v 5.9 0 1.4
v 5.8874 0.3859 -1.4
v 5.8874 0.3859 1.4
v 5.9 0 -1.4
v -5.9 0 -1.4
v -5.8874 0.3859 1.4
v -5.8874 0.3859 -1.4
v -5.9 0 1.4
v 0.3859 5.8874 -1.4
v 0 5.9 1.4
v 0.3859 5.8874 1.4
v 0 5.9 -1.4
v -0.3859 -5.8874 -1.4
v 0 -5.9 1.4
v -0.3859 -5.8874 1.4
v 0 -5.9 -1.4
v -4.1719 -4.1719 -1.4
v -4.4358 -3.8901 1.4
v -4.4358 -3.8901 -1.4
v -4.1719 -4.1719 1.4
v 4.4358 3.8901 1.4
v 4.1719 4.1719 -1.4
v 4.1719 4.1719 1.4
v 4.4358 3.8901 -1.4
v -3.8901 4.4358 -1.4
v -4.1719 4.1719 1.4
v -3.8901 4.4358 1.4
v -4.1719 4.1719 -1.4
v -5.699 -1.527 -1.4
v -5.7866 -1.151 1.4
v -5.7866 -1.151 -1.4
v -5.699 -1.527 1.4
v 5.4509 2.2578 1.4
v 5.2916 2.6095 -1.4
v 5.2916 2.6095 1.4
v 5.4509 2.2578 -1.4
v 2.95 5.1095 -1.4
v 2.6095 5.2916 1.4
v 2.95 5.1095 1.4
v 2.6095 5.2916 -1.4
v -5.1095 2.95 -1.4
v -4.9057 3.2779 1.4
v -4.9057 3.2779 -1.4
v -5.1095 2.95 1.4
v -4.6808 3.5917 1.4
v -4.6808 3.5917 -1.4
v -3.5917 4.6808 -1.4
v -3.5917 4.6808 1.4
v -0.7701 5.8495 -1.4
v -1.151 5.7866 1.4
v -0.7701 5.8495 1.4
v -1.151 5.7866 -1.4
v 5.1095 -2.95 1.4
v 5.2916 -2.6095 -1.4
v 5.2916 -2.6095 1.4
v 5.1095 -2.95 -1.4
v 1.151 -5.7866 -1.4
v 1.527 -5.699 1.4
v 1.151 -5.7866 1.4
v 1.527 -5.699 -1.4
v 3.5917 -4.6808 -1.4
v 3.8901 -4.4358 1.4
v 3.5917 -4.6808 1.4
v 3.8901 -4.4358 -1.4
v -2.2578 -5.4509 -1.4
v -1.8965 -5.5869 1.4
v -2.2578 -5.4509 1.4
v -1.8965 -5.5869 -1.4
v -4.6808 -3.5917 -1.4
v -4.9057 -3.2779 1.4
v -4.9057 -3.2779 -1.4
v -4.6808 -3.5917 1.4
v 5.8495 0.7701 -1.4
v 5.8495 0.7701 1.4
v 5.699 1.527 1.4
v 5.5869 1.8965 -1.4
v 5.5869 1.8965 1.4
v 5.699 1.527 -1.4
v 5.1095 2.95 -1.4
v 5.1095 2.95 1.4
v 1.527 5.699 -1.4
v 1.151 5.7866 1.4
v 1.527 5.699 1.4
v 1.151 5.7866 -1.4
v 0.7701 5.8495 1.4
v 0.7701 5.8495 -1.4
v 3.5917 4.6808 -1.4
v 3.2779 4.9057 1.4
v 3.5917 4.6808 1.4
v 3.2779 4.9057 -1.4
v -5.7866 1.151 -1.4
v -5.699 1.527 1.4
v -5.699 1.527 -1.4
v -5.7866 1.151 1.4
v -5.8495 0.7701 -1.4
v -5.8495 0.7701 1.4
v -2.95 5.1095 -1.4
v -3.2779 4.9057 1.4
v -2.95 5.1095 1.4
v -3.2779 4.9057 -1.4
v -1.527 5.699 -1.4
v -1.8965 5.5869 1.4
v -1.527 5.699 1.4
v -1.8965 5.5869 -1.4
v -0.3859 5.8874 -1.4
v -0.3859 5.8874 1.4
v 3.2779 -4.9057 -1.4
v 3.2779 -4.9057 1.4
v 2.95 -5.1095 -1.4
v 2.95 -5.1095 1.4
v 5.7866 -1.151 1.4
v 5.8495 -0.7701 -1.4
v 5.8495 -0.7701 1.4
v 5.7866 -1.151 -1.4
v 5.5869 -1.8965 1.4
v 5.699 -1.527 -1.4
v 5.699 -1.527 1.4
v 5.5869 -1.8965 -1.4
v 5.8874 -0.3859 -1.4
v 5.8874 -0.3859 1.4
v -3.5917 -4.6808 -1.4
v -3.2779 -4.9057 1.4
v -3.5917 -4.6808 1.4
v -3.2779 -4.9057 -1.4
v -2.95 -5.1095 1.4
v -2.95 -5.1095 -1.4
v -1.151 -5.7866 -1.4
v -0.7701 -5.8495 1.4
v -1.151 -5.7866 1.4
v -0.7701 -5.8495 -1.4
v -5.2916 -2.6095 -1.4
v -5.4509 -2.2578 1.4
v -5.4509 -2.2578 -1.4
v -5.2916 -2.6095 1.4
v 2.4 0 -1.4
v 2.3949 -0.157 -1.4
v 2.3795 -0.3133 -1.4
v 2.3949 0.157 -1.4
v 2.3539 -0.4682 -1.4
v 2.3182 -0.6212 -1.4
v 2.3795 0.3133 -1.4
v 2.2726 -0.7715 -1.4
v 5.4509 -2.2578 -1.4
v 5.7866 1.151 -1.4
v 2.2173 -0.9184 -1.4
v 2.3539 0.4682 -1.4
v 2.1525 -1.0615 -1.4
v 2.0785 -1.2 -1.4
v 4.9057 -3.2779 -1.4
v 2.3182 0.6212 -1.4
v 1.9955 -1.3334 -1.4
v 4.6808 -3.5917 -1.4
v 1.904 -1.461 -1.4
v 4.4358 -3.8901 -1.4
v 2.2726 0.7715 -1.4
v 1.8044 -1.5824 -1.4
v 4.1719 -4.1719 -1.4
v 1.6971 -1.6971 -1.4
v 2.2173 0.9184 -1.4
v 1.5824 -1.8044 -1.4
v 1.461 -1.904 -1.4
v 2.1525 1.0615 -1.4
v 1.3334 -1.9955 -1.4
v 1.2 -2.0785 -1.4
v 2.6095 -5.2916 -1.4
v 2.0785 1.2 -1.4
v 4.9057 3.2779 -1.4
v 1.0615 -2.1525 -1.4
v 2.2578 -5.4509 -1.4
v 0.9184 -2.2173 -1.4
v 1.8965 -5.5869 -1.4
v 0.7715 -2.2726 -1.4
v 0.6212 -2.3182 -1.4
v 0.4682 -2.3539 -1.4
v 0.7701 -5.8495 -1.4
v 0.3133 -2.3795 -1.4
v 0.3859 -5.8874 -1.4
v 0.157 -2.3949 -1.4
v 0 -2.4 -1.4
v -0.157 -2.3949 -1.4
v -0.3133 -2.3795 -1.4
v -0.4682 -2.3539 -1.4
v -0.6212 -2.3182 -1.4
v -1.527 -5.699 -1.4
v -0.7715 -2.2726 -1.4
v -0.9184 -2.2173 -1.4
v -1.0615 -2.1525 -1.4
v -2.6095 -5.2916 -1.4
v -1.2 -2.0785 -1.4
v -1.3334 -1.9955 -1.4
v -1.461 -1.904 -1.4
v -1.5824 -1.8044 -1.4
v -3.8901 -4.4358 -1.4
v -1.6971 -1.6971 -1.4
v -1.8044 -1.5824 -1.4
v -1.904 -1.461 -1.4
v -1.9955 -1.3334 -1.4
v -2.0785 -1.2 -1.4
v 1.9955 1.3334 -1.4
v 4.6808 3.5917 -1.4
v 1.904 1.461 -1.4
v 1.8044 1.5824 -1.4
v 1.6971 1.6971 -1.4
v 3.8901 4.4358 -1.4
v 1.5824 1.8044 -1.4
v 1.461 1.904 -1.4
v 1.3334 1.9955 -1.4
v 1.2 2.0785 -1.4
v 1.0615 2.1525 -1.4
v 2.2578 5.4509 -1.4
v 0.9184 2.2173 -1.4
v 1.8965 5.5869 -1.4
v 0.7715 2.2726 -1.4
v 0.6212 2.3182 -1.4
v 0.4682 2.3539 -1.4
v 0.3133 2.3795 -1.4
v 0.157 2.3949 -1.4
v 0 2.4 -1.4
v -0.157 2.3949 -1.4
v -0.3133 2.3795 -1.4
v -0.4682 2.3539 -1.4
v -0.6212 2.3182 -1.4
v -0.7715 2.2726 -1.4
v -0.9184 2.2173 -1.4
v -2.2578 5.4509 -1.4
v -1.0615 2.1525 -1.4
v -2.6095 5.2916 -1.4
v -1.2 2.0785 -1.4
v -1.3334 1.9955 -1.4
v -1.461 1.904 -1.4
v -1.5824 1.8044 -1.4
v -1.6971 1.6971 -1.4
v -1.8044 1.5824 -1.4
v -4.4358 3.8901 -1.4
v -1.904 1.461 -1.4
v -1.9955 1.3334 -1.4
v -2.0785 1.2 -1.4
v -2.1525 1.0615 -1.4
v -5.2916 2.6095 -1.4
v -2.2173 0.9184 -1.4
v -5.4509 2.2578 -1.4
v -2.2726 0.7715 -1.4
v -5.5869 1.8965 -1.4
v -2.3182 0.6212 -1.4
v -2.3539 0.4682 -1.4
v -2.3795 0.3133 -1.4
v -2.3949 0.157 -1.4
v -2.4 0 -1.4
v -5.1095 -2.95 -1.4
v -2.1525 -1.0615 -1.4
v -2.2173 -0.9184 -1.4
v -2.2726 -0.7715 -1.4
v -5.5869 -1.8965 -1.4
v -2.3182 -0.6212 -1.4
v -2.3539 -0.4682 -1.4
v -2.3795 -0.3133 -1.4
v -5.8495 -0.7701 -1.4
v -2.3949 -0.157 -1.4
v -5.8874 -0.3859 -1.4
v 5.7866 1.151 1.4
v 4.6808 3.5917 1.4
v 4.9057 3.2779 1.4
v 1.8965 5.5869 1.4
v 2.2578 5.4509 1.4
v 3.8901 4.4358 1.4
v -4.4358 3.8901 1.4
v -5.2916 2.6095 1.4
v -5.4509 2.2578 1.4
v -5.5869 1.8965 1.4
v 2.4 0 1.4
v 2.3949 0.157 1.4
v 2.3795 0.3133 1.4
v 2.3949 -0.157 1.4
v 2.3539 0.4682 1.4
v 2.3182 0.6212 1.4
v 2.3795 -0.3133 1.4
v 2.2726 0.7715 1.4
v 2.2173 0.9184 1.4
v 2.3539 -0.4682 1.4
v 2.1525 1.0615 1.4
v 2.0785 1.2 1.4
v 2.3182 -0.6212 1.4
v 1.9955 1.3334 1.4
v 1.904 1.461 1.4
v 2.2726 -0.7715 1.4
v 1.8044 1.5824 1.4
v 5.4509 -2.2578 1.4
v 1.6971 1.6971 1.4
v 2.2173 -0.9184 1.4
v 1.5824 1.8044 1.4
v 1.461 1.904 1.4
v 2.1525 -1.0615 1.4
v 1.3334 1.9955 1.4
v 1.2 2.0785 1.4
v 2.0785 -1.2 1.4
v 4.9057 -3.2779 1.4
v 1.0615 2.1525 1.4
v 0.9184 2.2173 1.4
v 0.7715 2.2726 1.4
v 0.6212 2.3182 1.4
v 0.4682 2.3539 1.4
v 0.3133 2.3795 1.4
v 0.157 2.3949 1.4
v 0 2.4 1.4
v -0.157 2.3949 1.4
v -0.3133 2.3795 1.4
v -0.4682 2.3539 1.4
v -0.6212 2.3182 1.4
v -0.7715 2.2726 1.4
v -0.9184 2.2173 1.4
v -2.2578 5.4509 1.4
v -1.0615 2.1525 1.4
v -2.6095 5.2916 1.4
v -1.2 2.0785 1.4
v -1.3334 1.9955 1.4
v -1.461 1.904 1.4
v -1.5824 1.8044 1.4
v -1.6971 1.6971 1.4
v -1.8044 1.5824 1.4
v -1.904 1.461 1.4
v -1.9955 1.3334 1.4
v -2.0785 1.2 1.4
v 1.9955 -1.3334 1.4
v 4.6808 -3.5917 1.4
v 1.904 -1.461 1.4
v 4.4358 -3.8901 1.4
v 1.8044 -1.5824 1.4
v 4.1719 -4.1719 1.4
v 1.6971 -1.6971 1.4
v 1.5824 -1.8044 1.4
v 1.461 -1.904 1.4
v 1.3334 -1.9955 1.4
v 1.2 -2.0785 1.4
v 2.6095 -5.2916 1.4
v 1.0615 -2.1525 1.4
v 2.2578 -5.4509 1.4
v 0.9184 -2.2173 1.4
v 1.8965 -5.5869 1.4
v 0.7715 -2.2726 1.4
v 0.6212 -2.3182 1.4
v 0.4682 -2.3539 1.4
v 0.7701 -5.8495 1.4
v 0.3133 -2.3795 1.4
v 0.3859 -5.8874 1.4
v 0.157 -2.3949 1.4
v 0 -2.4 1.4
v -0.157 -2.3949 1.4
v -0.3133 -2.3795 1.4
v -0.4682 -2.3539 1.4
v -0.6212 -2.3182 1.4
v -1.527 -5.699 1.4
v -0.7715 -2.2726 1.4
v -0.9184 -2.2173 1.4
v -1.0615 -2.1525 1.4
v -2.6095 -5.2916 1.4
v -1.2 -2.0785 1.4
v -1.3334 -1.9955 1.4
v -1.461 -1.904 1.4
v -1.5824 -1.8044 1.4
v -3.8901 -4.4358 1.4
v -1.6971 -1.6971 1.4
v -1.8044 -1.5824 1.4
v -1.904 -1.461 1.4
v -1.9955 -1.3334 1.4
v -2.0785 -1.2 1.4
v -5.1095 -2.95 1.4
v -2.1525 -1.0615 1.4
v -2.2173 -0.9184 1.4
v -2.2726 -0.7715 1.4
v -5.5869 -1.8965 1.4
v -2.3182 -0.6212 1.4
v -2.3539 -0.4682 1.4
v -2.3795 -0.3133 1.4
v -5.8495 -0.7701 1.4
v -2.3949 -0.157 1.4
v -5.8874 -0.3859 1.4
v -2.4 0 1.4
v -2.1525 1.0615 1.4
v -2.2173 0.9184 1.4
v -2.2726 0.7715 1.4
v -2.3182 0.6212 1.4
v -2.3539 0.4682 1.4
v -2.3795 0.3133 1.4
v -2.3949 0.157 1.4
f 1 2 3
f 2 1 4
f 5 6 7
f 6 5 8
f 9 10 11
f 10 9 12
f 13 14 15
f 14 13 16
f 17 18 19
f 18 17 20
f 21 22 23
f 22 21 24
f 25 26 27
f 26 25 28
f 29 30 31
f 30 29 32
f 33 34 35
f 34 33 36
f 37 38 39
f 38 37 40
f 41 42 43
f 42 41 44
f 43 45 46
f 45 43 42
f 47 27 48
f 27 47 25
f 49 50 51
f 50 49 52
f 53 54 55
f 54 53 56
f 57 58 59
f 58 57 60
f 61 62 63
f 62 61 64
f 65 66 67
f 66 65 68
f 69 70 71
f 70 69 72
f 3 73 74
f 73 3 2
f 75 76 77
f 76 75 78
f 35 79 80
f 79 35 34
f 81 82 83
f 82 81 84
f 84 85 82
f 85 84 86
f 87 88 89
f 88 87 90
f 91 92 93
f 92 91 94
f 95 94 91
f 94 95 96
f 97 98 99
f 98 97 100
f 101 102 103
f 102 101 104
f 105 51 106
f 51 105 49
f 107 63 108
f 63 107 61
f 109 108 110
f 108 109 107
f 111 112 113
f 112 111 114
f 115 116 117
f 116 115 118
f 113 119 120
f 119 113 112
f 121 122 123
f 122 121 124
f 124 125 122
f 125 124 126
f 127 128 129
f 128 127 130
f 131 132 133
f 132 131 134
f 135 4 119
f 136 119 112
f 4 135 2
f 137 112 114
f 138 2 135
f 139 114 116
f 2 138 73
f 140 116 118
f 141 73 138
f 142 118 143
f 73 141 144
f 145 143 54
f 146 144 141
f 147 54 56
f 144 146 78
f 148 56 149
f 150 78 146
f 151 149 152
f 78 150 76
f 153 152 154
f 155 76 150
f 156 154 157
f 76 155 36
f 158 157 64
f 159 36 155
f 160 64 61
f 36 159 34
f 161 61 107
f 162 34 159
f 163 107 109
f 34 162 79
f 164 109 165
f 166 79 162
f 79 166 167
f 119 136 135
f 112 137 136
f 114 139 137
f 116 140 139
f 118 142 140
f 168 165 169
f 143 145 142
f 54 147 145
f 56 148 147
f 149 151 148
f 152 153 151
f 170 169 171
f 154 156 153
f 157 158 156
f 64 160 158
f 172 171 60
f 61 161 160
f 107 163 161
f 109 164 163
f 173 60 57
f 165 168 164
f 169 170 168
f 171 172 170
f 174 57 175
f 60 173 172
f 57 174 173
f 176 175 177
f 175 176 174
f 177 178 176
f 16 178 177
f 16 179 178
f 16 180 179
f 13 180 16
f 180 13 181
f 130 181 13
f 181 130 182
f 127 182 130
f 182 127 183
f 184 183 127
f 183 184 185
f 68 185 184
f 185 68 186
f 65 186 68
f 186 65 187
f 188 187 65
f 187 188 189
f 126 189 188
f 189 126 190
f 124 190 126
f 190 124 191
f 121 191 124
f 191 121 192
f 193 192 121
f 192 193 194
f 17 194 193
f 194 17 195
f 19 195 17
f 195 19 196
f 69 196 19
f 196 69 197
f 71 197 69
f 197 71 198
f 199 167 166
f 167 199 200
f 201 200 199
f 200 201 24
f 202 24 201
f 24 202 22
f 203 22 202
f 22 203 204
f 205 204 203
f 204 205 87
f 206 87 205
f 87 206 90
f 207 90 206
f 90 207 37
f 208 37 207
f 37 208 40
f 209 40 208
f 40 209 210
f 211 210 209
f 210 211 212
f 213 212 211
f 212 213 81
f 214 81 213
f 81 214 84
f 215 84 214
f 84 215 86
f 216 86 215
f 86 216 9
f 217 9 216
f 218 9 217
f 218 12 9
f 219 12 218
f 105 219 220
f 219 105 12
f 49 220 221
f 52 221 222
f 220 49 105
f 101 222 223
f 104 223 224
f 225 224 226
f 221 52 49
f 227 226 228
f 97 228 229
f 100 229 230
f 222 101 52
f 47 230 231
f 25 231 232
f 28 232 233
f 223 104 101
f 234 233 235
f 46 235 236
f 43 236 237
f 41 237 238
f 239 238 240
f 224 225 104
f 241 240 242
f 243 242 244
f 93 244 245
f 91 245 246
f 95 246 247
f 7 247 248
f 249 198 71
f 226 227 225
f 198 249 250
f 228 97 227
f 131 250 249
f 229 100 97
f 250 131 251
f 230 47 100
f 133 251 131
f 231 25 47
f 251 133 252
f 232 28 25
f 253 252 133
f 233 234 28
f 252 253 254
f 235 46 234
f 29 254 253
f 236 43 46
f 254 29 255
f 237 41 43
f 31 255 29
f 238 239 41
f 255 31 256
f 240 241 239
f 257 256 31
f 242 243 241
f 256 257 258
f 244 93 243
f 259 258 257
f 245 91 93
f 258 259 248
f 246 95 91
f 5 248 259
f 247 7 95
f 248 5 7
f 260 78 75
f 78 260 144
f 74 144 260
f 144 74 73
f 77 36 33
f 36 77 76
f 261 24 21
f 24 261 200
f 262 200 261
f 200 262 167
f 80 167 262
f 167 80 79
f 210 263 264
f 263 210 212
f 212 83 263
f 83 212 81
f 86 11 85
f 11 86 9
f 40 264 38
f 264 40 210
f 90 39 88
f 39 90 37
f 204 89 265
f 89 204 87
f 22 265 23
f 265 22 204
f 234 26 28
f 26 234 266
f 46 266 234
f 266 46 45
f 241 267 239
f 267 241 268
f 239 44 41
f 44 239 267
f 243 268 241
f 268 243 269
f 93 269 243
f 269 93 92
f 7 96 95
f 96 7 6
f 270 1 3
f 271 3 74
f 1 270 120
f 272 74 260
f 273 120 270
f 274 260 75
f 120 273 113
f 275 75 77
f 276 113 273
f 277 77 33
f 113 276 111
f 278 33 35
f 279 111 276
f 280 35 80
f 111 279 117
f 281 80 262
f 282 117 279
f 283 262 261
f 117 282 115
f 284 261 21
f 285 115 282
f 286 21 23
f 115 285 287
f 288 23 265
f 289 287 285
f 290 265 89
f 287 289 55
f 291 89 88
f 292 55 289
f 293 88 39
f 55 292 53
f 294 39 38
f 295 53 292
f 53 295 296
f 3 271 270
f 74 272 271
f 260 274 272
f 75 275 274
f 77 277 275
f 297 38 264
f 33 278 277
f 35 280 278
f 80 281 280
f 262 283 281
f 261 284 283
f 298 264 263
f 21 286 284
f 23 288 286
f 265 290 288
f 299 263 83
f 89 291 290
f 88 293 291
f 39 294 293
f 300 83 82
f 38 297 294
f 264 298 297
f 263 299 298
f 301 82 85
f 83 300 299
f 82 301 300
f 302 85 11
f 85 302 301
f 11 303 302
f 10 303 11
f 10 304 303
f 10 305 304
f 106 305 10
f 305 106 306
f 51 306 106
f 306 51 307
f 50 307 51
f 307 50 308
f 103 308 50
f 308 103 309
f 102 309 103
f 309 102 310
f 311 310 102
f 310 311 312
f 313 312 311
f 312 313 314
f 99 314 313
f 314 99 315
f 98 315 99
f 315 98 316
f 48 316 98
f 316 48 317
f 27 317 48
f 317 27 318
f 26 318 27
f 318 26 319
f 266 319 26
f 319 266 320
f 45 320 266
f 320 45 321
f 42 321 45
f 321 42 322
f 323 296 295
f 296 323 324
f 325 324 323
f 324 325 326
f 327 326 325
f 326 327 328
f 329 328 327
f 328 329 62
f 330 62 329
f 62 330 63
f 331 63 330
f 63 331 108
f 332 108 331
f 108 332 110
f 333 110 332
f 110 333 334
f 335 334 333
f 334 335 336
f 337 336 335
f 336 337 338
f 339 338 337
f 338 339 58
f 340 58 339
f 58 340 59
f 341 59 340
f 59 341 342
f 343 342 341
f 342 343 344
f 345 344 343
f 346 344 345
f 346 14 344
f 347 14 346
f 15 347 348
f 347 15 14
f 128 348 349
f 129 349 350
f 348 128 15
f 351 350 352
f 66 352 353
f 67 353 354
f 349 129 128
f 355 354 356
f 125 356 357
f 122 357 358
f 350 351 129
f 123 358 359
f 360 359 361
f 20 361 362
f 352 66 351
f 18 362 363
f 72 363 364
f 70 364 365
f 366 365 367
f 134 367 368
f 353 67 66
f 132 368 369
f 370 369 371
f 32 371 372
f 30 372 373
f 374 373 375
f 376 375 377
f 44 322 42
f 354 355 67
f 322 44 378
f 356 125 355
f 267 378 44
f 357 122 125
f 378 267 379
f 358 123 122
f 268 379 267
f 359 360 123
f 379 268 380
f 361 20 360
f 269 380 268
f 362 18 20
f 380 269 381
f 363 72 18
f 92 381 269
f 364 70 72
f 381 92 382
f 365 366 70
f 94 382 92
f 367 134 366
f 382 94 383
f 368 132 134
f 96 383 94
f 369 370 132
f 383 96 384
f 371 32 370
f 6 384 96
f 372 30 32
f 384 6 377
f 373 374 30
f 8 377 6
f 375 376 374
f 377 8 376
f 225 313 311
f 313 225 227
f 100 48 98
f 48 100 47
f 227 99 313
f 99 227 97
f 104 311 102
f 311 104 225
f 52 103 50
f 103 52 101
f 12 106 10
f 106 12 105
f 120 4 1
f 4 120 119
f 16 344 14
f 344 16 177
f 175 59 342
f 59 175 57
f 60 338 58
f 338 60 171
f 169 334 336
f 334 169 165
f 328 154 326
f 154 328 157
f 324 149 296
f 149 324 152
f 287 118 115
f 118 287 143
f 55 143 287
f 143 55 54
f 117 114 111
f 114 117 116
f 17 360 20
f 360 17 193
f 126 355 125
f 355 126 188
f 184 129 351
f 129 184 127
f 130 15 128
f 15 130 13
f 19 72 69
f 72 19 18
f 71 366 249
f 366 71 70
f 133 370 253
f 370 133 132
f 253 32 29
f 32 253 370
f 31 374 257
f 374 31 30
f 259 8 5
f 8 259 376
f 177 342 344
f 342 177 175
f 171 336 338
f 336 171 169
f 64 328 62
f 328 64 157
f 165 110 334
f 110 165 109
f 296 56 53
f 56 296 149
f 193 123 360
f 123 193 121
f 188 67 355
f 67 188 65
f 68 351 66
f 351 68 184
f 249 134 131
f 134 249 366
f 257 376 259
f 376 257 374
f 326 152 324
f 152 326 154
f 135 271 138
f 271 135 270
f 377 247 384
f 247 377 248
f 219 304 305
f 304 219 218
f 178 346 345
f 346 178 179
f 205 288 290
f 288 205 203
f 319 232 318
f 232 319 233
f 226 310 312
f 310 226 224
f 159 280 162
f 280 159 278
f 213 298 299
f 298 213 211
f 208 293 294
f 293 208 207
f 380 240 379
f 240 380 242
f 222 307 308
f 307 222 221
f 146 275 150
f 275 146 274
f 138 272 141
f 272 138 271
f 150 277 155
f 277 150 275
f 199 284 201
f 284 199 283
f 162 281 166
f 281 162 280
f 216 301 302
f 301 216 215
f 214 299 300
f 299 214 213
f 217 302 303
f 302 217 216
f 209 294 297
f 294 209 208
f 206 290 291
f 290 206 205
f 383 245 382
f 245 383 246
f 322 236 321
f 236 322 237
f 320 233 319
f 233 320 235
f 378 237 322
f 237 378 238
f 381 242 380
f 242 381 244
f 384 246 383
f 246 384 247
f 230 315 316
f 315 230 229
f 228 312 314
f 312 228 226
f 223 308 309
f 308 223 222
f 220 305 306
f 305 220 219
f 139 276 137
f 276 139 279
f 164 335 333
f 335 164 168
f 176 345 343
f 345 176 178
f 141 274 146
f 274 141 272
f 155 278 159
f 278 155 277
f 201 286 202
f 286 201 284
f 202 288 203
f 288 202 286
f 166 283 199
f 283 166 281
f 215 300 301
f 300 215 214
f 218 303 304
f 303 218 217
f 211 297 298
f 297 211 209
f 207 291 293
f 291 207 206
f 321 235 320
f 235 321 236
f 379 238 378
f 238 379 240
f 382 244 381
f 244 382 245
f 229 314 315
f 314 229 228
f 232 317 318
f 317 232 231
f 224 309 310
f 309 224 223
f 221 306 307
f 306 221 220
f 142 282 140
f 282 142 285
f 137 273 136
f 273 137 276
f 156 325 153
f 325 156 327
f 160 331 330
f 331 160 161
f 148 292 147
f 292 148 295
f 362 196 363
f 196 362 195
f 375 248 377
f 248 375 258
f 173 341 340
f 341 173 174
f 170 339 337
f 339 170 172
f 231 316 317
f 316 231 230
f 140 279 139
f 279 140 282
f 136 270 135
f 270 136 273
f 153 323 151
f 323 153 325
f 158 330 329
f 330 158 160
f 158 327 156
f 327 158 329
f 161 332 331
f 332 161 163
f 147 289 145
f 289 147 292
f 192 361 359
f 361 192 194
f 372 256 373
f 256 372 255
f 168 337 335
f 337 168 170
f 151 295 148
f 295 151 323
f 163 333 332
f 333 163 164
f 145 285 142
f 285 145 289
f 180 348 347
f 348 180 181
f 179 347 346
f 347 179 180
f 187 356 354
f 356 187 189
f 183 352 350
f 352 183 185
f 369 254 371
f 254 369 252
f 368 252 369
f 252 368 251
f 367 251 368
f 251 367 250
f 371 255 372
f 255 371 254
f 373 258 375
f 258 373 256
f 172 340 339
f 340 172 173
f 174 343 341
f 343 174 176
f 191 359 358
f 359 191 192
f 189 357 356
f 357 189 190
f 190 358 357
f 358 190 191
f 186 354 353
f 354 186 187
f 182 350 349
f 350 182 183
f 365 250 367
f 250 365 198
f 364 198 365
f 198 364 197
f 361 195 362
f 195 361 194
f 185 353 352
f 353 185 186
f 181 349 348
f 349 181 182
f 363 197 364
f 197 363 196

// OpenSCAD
// Spacers between midpart and backpart of Z core
// Allow some space for ties that hold LM12UU
// 6 pieces


M4=4.8;        // for easy insertion on M4 bold  
Height=2.8;   // measured 3 when ready


difference()
{
cylinder(h=Height,d=M4+7,center=true,$fn=96);// 9+4.8=13.8
 cylinder(h=Height+1,d=M4,center=true,$fn=96) ;  
    
}
